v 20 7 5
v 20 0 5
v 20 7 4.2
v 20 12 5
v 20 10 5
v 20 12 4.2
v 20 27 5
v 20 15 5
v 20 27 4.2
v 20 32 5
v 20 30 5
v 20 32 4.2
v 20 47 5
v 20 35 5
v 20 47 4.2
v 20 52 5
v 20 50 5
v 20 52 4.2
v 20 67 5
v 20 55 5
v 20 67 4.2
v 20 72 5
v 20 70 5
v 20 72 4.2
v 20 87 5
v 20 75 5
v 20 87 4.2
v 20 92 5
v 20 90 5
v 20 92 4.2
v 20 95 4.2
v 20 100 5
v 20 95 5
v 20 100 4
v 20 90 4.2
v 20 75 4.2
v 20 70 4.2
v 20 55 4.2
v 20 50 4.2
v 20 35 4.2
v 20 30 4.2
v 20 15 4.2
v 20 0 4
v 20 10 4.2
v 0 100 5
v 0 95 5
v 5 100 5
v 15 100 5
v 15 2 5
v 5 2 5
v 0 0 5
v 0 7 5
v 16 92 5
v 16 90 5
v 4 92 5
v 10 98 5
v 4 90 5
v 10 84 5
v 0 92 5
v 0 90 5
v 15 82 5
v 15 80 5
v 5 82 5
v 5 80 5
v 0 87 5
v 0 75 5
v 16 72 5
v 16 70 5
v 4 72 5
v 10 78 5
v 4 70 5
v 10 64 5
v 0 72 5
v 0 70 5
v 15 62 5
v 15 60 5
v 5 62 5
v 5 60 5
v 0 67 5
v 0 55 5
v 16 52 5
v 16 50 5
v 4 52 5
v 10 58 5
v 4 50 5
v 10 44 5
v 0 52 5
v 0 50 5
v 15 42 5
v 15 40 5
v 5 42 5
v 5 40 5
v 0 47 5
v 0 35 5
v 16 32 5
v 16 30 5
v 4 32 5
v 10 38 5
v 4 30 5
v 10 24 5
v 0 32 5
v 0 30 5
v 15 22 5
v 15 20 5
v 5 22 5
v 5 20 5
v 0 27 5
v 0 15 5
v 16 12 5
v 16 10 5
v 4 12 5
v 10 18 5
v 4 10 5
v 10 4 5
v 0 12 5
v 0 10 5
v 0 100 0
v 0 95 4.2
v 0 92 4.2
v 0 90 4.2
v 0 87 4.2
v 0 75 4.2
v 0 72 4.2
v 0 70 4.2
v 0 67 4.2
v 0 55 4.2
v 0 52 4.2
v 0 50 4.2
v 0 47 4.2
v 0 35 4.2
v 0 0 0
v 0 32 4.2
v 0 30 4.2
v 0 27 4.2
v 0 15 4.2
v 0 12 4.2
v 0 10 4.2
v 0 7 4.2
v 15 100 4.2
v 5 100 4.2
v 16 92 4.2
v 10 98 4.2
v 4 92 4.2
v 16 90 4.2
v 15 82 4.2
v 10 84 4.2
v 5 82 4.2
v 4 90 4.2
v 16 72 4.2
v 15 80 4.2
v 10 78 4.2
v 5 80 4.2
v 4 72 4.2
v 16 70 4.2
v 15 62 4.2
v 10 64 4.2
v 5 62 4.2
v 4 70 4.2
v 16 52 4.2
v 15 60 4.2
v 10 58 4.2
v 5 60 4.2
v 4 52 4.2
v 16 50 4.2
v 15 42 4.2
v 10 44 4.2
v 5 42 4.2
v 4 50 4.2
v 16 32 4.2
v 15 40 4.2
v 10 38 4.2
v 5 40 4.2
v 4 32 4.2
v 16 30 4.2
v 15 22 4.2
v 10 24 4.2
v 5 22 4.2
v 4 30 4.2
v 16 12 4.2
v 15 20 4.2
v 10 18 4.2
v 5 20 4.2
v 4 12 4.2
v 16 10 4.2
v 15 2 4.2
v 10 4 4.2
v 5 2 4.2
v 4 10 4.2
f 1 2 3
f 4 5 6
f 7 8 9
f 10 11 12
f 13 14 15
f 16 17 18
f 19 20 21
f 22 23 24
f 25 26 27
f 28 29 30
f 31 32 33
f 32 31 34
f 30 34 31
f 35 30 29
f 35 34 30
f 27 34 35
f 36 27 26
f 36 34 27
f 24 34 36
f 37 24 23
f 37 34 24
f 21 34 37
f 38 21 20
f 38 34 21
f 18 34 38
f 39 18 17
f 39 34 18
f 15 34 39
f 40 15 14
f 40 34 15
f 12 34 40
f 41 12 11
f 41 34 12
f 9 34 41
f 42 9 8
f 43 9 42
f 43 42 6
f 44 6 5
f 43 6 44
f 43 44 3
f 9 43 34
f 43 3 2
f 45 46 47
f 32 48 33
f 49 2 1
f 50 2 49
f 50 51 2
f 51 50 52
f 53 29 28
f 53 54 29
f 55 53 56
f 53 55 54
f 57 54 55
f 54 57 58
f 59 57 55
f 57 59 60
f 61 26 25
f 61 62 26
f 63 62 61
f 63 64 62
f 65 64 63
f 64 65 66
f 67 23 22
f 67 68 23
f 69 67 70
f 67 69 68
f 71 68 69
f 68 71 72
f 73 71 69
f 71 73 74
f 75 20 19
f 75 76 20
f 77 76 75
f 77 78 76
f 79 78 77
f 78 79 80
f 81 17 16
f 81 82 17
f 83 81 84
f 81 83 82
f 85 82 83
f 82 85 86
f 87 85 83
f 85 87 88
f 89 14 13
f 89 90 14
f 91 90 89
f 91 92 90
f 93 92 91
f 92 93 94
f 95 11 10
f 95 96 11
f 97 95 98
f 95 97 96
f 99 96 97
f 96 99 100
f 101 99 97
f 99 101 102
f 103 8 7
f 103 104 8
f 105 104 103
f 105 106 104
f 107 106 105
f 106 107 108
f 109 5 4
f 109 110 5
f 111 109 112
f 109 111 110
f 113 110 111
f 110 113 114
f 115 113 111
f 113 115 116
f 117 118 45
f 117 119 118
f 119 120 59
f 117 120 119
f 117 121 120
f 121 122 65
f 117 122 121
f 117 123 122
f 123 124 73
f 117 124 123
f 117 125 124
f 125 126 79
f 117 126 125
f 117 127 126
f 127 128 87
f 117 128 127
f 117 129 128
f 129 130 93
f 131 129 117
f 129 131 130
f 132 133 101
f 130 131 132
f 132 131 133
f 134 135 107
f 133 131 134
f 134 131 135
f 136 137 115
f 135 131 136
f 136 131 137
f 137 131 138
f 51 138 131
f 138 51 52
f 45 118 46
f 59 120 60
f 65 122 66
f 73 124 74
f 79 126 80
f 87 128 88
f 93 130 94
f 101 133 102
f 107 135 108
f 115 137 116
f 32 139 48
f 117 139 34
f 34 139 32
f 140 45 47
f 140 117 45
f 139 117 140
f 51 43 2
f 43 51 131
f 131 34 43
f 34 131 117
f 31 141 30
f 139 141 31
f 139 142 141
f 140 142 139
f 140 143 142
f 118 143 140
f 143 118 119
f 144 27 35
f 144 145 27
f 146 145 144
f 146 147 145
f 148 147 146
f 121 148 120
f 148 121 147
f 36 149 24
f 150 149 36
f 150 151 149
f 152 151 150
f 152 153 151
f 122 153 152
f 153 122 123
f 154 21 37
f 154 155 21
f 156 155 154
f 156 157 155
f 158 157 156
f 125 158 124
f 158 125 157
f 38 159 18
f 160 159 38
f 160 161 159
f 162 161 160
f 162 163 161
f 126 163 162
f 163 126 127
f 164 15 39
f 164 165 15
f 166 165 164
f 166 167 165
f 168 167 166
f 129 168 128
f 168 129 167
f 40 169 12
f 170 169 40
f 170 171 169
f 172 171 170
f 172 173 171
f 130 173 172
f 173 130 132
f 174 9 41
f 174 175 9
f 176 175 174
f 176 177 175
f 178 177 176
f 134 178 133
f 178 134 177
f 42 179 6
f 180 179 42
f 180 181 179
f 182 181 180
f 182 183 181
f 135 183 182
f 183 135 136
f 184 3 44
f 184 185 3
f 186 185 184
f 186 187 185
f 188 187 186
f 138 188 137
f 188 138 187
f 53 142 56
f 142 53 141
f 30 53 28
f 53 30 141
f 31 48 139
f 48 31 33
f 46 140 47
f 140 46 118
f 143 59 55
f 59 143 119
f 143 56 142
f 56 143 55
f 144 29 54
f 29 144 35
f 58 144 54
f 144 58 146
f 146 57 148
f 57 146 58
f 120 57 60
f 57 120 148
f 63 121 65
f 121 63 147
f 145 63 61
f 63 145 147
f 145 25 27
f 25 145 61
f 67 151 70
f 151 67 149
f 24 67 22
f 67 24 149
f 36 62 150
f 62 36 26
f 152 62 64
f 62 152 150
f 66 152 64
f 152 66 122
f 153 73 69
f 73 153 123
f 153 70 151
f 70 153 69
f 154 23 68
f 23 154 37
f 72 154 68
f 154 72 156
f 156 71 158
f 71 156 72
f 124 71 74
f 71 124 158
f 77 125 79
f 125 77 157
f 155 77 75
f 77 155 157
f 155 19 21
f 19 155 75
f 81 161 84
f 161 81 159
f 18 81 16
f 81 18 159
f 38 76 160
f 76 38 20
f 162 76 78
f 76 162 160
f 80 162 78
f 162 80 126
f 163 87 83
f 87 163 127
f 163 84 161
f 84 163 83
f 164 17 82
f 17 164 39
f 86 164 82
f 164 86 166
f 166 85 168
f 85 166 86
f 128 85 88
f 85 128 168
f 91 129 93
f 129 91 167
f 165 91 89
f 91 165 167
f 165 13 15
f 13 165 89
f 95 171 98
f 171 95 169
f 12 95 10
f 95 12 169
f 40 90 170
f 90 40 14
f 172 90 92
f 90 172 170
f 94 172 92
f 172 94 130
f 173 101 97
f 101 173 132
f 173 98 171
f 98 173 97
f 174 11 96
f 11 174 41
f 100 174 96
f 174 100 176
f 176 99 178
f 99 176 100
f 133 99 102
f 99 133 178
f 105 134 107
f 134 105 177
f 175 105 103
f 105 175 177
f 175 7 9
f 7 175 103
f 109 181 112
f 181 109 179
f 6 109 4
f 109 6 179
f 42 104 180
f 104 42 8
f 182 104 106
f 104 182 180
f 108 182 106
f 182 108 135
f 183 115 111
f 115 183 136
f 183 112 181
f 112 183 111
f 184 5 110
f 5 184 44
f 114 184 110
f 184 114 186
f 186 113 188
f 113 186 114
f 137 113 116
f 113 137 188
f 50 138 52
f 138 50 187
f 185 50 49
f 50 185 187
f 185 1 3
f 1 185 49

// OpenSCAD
width = 20;
outer_height = 4;
inner_height = 0;
tread_height = 1;
tread_depth = 0.8;
length = 20*5;

module tread_rhomboid() {
  polygon([[4,0],[0,0],[0,3],[5,8],[12,8]]);
}
module tread_chevron() {
  union() {
    tread_rhomboid();
    translate([20,0,0]) mirror([1,0]) tread_rhomboid();
  }
}

module tread_unit() {
  union() {
    translate([0,10,0]) mirror([0,1]) tread_chevron();
    translate([0,12,0]) tread_chevron();
  }
}

module tread_neg() {
  for (y = [0:20:length]) {
    translate([0,y,0]) tread_unit();
  }
}

difference() {
    cube([width,length,outer_height+tread_height]);
    translate([0,length+1,0]) rotate([90,0,0]) linear_extrude(length+2) polygon([
        [0, 0],
        [width, outer_height-inner_height],
        [width, 0]
    ]);
    translate([0,0,outer_height+tread_height-tread_depth])
      linear_extrude(tread_height) 
    tread_neg();
}
